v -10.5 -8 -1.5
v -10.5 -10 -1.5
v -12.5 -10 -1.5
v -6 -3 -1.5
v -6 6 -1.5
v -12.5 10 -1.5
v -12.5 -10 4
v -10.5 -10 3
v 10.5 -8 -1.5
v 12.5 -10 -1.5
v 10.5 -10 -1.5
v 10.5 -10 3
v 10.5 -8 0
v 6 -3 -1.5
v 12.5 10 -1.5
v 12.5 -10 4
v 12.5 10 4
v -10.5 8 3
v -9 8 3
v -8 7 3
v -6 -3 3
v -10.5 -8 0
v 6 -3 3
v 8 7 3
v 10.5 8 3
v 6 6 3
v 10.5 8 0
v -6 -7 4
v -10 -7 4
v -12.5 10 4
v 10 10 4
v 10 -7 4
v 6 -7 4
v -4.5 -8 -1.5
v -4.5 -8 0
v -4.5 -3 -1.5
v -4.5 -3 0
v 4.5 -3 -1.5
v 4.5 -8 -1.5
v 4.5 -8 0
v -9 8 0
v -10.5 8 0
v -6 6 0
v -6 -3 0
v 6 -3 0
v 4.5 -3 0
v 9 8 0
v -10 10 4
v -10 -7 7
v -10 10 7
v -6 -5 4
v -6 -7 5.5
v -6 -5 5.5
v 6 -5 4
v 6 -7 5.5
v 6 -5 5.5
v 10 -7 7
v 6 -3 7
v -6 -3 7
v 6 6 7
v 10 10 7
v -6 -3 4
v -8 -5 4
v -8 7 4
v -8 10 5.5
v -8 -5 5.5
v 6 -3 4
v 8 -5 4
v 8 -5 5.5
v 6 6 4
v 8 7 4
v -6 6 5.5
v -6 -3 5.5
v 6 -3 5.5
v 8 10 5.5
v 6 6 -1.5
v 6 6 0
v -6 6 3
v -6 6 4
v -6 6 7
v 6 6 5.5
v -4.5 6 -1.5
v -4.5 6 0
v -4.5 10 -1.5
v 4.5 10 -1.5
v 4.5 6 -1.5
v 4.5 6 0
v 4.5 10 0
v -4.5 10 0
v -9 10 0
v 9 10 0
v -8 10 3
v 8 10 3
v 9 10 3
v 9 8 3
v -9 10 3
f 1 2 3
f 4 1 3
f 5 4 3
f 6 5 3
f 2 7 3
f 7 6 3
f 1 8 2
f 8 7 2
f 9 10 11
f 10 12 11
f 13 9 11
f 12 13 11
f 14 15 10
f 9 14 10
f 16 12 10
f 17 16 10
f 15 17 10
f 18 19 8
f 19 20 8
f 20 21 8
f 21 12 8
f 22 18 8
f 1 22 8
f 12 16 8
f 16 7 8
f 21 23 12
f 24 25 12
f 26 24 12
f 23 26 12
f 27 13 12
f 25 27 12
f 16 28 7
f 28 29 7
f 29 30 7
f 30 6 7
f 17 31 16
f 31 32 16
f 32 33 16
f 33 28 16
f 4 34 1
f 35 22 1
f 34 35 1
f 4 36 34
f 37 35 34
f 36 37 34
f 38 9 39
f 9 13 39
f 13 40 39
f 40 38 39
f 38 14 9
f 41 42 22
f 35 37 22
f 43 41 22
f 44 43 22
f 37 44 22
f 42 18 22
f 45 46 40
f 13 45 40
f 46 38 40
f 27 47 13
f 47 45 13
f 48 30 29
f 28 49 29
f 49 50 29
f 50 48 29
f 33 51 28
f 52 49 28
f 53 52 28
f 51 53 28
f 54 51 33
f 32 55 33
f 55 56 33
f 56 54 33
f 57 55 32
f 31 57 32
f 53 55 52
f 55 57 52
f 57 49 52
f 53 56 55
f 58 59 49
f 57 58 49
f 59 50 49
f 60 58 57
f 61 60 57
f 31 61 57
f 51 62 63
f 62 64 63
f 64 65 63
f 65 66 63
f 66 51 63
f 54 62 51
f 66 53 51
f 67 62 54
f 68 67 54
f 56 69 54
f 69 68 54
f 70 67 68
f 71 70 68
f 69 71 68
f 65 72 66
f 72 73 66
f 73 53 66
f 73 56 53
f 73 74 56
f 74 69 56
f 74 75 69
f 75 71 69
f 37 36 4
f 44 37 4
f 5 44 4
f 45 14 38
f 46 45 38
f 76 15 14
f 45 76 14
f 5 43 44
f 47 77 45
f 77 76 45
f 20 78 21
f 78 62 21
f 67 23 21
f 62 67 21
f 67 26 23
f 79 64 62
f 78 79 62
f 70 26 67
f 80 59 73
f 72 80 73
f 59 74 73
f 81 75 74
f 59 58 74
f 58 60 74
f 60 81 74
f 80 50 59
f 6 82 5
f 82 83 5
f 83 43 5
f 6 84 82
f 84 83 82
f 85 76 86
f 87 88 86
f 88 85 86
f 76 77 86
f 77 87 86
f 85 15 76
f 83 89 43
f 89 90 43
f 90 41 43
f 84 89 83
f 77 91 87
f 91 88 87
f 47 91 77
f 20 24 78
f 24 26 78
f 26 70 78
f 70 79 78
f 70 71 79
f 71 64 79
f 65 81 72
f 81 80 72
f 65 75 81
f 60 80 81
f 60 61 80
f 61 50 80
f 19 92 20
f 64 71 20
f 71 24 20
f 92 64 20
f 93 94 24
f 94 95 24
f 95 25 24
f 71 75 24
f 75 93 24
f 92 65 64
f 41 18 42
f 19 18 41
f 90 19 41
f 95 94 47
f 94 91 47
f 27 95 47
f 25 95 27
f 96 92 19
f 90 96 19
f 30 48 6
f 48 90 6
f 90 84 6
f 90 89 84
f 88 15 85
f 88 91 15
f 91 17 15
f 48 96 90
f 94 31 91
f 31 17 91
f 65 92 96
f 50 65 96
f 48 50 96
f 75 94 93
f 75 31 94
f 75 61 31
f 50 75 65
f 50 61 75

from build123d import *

# Parameters (mm, degrees)
RESSALTO_EXTRUS_O1_DEPTH  = 1.5
RESSALTO_EXTRUS_O2_DEPTH  = 3
ESBO_O2_W                 = 1
ESBO_O2_H                 = 15
ESBO_O2_H_2               = 2
RESSALTO_EXTRUS_O3_DEPTH  = 1
ESBO_O2_4_W               = 1
ESBO_O2_4_H               = 2
ESBO_O2_4_H_2             = 15
RESSALTO_EXTRUS_O4_DEPTH  = 2.5
ESBO_O3_W                 = 20
ESBO_O3_H                 = 17
RESSALTO_EXTRUS_O5_DEPTH  = 1.5
CORTE_EXTRUS_O1_START     = -2
CORTE_EXTRUS_O1_OUTLINE_W = 12
CORTE_EXTRUS_O1_OUTLINE_H = 1.5
CORTE_EXTRUS_O1_DEPTH     = 2
ESBO_O5_W                 = 9
ESBO_O5_H                 = 2
ESBO_O5_H_2               = 16
CORTE_EXTRUS_O2_DEPTH     = 2.5
ESBO_O6_W                 = 12
ESBO_O6_H                 = 9
CORTE_EXTRUS_O3_DEPTH     = 9.5


# Read off the part's stored shape, not the designer's step: Corte-extrusão1
with BuildPart() as part:
    # Esboço1 → Ressalto-extrusão1 (new body)
    with BuildSketch(Plane.XY):
        Polygon((12.5, 10), (-12.5, 10), (-12.5, -10), (-10.5, -10), (-10.5, -8), (10.5, -8), (10.5, -10), (12.5, -10), align=None)
    extrude(amount=-RESSALTO_EXTRUS_O1_DEPTH)

    # Esboço1<3> → Ressalto-extrusão2 (add)
    with BuildSketch(Plane.XY):
        Polygon((-10.5, 8), (-9, 8), (-9, 10), (-12.5, 10), (-12.5, -10), (-10.5, -10), (-10.5, -8), align=None)
        Polygon((9, 10), (9, 8), (10.5, 8), (10.5, -8), (10.5, -10), (12.5, -10), (12.5, 10), align=None)
    extrude(amount=RESSALTO_EXTRUS_O2_DEPTH)

    # Esboço2 → Ressalto-extrusão3 (add)
    with BuildSketch(Plane.XY.offset(3)):
        Polygon((-10, 10), (-12.5, 10), (-12.5, -10), (-10.5, -10), (-10.5, 8), (-10, 8), align=None)
        Polygon((-10.5, 8), (-10.5, -10), (12.5, -10), (12.5, 10), (10, 10), (10, 8), (10, -7), (9, -7), (0, -7), (-9, -7), (-10, -7), (-10, 8), align=None)
        with Locations((-9.5, 0.5)):
            Rectangle(ESBO_O2_W, ESBO_O2_H)
        with Locations((-9.5, 9)):
            Rectangle(ESBO_O2_W, ESBO_O2_H_2)
        Polygon((-8, 8), (-9, 8), (-9, -7), (0, -7), (9, -7), (9, 8), (8, 8), (8, 7), (8, -5), (0, -5), (-8, -5), (-8, 7), align=None)
        with Locations((-8.5, 9)):
            Rectangle(ESBO_O2_W, ESBO_O2_H_2)
        with Locations((8.5, 9)):
            Rectangle(ESBO_O2_W, ESBO_O2_H_2)
        with Locations((9.5, 9)):
            Rectangle(ESBO_O2_W, ESBO_O2_H_2)
        with Locations((9.5, 0.5)):
            Rectangle(ESBO_O2_W, ESBO_O2_H)
        Polygon((8, -5), (8, 7), (0, 7), (0, 0), (0, -5), align=None)
        Polygon((0, 7), (-8, 7), (-8, -5), (0, -5), (0, 0), align=None)
    extrude(amount=RESSALTO_EXTRUS_O3_DEPTH)

    # Esboço2<4> → Ressalto-extrusão4 (add)
    with BuildSketch(Plane.XY.offset(3)):
        with Locations((-8.5, 9)):
            Rectangle(ESBO_O2_4_W, ESBO_O2_4_H)
        with Locations((-9.5, 9)):
            Rectangle(ESBO_O2_4_W, ESBO_O2_4_H)
        with Locations((-9.5, 0.5)):
            Rectangle(ESBO_O2_4_W, ESBO_O2_4_H_2)
        Polygon((-8, 8), (-9, 8), (-9, -7), (0, -7), (9, -7), (9, 8), (8, 8), (8, 7), (8, -5), (0, -5), (-8, -5), (-8, 7), align=None)
        with Locations((9.5, 0.5)):
            Rectangle(ESBO_O2_4_W, ESBO_O2_4_H_2)
        with Locations((8.5, 9)):
            Rectangle(ESBO_O2_4_W, ESBO_O2_4_H)
        with Locations((9.5, 9)):
            Rectangle(ESBO_O2_4_W, ESBO_O2_4_H)
    extrude(amount=RESSALTO_EXTRUS_O4_DEPTH)

    # Esboço3 → Ressalto-extrusão5 (add)
    with BuildSketch(Plane.XY.offset(5.5)):
        with Locations((0, 1.5)):
            Rectangle(ESBO_O3_W, ESBO_O3_H)
    extrude(amount=RESSALTO_EXTRUS_O5_DEPTH)

    # Corte-extrusão1 outline → Corte-extrusão1 (cut)
    with BuildSketch(Plane.XZ.offset(7).offset(CORTE_EXTRUS_O1_START)):
        with Locations((0, 4.75)):
            Rectangle(CORTE_EXTRUS_O1_OUTLINE_W, CORTE_EXTRUS_O1_OUTLINE_H)
    extrude(amount=CORTE_EXTRUS_O1_DEPTH, mode=Mode.SUBTRACT)

    # Esboço5 → Corte-extrusão2 (cut)
    with BuildSketch(Plane(origin=(0, 0, -1.5), x_dir=(-1, 0, 0), z_dir=(0, 0, -1))):
        with Locations((0, 9)):
            Rectangle(ESBO_O5_W, ESBO_O5_H)
        Rectangle(ESBO_O5_W, ESBO_O5_H_2)
    extrude(amount=-CORTE_EXTRUS_O2_DEPTH, mode=Mode.SUBTRACT)

    # Esboço6 → Corte-extrusão3 (cut)
    with BuildSketch(Plane.XY.offset(7)):
        with Locations((0, 1.5)):
            Rectangle(ESBO_O6_W, ESBO_O6_H)
    extrude(amount=-CORTE_EXTRUS_O3_DEPTH, mode=Mode.SUBTRACT)


solid = part.part
